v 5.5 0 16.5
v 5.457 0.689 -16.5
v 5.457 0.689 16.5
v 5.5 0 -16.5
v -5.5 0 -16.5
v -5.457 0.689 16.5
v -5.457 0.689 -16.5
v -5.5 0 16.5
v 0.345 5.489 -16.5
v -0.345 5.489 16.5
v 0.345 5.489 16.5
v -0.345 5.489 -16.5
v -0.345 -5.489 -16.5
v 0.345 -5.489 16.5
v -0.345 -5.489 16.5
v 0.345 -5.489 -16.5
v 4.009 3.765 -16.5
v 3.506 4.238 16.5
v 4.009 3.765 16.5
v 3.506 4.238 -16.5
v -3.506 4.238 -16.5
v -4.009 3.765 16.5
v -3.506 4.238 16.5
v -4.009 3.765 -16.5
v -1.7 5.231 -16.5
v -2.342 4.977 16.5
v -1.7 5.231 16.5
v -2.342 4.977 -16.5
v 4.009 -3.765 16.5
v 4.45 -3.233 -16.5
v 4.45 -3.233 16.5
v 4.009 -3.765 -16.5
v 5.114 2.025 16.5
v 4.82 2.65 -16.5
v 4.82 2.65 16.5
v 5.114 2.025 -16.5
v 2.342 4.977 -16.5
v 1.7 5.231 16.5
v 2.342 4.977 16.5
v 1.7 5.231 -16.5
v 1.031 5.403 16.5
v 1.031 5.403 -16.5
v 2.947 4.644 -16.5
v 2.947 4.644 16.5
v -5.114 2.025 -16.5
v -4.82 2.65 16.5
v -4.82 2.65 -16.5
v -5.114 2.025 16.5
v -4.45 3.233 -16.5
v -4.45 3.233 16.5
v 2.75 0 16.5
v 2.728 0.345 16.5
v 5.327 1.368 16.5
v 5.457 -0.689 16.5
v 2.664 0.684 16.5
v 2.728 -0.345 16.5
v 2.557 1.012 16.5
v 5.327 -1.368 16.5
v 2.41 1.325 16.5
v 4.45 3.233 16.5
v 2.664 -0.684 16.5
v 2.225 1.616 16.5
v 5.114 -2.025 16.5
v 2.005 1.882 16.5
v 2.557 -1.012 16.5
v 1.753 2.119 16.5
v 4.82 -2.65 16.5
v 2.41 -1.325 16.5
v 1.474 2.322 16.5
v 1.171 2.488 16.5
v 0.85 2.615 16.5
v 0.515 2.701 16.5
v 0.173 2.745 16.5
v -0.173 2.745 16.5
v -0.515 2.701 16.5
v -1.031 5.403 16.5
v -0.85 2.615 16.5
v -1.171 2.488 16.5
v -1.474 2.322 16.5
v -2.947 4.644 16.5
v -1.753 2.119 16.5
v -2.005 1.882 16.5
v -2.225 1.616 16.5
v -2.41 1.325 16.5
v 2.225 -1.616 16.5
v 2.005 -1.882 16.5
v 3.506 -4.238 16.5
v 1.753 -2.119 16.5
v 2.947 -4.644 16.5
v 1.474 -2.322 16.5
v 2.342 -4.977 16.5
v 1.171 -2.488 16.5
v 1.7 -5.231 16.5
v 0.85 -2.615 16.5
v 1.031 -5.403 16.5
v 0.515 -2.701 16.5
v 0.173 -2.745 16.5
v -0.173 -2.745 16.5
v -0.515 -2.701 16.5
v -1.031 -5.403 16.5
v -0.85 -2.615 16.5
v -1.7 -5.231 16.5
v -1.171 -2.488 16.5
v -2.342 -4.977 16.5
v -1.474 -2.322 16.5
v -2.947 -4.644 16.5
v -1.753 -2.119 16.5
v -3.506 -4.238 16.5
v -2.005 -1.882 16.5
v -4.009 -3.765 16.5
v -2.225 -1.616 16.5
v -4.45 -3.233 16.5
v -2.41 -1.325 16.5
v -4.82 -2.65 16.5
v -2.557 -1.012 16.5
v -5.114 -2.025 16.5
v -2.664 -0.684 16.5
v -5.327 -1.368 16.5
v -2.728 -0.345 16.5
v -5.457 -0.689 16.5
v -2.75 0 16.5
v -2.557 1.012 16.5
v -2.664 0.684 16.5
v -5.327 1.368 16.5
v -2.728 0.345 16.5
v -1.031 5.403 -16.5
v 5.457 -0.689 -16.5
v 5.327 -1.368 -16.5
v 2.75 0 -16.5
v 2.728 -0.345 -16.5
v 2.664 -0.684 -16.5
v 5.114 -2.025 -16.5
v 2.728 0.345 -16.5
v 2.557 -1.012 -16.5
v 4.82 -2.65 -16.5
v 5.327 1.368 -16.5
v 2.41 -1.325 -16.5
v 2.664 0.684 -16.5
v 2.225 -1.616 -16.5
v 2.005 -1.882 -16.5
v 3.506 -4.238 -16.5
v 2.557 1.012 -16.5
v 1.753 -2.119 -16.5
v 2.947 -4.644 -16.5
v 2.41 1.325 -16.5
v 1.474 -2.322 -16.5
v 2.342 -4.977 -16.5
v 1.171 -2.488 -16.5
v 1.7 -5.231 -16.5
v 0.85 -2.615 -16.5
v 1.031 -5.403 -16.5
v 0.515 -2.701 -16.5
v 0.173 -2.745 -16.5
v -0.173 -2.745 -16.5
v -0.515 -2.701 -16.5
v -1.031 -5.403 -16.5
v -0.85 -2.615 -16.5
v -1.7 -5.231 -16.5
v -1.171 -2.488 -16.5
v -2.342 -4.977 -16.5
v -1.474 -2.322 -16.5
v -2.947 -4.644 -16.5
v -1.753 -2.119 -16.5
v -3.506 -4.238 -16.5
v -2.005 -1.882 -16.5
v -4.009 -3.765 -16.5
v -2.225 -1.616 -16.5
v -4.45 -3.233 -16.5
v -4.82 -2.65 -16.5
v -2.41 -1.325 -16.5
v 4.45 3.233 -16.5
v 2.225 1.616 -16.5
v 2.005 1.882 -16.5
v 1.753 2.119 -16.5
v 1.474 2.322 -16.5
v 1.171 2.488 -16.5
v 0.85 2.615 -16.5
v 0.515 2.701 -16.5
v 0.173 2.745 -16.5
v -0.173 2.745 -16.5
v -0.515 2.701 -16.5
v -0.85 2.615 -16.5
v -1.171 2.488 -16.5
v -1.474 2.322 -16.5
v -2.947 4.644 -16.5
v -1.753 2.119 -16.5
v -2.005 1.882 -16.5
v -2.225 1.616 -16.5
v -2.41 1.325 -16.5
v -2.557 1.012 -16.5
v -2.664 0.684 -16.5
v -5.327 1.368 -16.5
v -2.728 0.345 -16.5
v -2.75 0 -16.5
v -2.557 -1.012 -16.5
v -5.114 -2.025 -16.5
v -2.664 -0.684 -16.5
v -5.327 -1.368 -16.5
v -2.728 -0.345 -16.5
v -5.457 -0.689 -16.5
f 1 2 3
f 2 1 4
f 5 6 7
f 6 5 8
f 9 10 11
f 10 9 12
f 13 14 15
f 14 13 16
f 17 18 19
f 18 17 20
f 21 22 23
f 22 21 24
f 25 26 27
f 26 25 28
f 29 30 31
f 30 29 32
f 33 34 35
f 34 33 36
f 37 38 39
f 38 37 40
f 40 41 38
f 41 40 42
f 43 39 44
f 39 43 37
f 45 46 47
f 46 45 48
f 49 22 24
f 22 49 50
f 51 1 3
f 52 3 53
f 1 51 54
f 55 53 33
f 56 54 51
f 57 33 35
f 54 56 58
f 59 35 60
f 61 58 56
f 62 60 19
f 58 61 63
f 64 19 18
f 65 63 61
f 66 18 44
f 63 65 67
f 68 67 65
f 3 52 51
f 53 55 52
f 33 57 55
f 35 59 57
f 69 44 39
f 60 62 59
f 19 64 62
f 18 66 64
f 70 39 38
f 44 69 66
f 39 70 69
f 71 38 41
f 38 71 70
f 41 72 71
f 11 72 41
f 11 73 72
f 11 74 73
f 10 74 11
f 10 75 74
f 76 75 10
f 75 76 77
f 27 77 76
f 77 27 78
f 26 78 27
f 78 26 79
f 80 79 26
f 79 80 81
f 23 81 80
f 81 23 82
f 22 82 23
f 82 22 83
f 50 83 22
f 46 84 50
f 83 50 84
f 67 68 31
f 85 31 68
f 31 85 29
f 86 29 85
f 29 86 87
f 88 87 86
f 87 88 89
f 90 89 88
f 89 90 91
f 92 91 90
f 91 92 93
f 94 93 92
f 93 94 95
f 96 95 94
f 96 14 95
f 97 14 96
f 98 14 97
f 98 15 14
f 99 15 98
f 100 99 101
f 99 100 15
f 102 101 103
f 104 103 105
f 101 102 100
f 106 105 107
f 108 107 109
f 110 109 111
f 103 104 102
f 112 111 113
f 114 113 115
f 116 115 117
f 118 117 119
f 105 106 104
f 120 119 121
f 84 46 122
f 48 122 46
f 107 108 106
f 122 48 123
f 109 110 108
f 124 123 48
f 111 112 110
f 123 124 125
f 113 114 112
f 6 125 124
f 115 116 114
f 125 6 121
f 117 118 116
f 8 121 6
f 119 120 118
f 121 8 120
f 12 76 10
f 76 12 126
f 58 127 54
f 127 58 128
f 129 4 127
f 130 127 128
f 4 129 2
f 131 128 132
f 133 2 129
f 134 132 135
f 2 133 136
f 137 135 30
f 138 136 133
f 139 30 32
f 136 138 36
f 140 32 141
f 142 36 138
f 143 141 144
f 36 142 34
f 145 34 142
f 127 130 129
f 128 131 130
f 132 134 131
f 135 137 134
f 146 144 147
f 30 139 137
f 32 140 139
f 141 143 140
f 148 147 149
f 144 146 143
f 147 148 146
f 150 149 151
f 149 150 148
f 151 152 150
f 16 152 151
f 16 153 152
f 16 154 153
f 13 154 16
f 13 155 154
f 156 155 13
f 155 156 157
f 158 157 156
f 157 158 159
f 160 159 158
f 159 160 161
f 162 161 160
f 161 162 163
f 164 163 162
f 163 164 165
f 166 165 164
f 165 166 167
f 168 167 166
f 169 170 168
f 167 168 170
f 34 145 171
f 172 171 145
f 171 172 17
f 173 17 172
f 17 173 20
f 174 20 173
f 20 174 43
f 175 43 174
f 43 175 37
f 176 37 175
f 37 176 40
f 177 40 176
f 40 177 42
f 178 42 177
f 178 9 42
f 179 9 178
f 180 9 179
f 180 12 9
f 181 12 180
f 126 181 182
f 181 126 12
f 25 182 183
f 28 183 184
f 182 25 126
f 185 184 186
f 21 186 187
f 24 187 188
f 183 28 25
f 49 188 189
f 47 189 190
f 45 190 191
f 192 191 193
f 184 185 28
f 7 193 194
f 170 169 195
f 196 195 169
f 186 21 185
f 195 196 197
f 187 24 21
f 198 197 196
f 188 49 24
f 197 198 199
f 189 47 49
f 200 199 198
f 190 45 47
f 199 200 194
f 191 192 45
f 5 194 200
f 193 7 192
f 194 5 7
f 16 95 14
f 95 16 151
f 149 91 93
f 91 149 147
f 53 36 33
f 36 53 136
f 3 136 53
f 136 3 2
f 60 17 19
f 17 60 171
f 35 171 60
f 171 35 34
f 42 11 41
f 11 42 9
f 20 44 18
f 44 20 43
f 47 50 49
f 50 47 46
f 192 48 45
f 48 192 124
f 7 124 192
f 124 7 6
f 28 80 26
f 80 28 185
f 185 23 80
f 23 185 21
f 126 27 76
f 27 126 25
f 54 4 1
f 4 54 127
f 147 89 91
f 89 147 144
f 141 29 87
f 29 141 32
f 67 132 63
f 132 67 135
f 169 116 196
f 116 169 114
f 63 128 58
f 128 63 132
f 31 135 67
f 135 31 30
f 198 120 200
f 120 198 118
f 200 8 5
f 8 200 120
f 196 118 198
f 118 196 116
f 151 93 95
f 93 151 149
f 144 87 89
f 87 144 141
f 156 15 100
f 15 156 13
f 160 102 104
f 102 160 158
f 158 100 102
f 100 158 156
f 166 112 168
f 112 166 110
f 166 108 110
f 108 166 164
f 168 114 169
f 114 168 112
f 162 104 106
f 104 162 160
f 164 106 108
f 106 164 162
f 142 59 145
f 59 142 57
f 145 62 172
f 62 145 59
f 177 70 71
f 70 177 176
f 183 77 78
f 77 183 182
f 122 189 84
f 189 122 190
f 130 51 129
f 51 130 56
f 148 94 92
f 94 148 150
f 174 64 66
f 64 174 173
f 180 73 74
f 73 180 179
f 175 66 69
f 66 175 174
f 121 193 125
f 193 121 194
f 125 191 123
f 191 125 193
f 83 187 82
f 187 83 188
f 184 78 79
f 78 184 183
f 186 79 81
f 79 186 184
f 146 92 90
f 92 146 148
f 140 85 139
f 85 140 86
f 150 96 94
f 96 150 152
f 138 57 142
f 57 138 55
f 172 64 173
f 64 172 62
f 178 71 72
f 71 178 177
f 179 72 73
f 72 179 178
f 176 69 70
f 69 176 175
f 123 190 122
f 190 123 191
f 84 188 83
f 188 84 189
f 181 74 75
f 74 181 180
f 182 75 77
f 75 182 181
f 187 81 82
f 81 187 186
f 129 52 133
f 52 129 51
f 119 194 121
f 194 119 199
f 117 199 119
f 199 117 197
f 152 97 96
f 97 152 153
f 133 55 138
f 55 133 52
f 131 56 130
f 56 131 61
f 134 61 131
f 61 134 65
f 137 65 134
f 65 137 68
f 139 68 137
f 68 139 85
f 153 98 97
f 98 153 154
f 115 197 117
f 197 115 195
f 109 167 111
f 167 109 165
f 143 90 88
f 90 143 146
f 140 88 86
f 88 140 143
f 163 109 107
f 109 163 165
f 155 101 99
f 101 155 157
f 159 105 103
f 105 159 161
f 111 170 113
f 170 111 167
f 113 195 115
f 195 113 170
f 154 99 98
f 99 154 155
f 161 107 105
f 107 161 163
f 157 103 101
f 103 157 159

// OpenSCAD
$fn = 50;


difference() {
	union() {
		translate(v = [0, 0, -16.5000000000]) {
			cylinder(h = 33, r = 5.5000000000);
		}
	}
	union() {
		translate(v = [0, 0, -100.0000000000]) {
			cylinder(h = 200, r = 2.7500000000);
		}
	}
}
